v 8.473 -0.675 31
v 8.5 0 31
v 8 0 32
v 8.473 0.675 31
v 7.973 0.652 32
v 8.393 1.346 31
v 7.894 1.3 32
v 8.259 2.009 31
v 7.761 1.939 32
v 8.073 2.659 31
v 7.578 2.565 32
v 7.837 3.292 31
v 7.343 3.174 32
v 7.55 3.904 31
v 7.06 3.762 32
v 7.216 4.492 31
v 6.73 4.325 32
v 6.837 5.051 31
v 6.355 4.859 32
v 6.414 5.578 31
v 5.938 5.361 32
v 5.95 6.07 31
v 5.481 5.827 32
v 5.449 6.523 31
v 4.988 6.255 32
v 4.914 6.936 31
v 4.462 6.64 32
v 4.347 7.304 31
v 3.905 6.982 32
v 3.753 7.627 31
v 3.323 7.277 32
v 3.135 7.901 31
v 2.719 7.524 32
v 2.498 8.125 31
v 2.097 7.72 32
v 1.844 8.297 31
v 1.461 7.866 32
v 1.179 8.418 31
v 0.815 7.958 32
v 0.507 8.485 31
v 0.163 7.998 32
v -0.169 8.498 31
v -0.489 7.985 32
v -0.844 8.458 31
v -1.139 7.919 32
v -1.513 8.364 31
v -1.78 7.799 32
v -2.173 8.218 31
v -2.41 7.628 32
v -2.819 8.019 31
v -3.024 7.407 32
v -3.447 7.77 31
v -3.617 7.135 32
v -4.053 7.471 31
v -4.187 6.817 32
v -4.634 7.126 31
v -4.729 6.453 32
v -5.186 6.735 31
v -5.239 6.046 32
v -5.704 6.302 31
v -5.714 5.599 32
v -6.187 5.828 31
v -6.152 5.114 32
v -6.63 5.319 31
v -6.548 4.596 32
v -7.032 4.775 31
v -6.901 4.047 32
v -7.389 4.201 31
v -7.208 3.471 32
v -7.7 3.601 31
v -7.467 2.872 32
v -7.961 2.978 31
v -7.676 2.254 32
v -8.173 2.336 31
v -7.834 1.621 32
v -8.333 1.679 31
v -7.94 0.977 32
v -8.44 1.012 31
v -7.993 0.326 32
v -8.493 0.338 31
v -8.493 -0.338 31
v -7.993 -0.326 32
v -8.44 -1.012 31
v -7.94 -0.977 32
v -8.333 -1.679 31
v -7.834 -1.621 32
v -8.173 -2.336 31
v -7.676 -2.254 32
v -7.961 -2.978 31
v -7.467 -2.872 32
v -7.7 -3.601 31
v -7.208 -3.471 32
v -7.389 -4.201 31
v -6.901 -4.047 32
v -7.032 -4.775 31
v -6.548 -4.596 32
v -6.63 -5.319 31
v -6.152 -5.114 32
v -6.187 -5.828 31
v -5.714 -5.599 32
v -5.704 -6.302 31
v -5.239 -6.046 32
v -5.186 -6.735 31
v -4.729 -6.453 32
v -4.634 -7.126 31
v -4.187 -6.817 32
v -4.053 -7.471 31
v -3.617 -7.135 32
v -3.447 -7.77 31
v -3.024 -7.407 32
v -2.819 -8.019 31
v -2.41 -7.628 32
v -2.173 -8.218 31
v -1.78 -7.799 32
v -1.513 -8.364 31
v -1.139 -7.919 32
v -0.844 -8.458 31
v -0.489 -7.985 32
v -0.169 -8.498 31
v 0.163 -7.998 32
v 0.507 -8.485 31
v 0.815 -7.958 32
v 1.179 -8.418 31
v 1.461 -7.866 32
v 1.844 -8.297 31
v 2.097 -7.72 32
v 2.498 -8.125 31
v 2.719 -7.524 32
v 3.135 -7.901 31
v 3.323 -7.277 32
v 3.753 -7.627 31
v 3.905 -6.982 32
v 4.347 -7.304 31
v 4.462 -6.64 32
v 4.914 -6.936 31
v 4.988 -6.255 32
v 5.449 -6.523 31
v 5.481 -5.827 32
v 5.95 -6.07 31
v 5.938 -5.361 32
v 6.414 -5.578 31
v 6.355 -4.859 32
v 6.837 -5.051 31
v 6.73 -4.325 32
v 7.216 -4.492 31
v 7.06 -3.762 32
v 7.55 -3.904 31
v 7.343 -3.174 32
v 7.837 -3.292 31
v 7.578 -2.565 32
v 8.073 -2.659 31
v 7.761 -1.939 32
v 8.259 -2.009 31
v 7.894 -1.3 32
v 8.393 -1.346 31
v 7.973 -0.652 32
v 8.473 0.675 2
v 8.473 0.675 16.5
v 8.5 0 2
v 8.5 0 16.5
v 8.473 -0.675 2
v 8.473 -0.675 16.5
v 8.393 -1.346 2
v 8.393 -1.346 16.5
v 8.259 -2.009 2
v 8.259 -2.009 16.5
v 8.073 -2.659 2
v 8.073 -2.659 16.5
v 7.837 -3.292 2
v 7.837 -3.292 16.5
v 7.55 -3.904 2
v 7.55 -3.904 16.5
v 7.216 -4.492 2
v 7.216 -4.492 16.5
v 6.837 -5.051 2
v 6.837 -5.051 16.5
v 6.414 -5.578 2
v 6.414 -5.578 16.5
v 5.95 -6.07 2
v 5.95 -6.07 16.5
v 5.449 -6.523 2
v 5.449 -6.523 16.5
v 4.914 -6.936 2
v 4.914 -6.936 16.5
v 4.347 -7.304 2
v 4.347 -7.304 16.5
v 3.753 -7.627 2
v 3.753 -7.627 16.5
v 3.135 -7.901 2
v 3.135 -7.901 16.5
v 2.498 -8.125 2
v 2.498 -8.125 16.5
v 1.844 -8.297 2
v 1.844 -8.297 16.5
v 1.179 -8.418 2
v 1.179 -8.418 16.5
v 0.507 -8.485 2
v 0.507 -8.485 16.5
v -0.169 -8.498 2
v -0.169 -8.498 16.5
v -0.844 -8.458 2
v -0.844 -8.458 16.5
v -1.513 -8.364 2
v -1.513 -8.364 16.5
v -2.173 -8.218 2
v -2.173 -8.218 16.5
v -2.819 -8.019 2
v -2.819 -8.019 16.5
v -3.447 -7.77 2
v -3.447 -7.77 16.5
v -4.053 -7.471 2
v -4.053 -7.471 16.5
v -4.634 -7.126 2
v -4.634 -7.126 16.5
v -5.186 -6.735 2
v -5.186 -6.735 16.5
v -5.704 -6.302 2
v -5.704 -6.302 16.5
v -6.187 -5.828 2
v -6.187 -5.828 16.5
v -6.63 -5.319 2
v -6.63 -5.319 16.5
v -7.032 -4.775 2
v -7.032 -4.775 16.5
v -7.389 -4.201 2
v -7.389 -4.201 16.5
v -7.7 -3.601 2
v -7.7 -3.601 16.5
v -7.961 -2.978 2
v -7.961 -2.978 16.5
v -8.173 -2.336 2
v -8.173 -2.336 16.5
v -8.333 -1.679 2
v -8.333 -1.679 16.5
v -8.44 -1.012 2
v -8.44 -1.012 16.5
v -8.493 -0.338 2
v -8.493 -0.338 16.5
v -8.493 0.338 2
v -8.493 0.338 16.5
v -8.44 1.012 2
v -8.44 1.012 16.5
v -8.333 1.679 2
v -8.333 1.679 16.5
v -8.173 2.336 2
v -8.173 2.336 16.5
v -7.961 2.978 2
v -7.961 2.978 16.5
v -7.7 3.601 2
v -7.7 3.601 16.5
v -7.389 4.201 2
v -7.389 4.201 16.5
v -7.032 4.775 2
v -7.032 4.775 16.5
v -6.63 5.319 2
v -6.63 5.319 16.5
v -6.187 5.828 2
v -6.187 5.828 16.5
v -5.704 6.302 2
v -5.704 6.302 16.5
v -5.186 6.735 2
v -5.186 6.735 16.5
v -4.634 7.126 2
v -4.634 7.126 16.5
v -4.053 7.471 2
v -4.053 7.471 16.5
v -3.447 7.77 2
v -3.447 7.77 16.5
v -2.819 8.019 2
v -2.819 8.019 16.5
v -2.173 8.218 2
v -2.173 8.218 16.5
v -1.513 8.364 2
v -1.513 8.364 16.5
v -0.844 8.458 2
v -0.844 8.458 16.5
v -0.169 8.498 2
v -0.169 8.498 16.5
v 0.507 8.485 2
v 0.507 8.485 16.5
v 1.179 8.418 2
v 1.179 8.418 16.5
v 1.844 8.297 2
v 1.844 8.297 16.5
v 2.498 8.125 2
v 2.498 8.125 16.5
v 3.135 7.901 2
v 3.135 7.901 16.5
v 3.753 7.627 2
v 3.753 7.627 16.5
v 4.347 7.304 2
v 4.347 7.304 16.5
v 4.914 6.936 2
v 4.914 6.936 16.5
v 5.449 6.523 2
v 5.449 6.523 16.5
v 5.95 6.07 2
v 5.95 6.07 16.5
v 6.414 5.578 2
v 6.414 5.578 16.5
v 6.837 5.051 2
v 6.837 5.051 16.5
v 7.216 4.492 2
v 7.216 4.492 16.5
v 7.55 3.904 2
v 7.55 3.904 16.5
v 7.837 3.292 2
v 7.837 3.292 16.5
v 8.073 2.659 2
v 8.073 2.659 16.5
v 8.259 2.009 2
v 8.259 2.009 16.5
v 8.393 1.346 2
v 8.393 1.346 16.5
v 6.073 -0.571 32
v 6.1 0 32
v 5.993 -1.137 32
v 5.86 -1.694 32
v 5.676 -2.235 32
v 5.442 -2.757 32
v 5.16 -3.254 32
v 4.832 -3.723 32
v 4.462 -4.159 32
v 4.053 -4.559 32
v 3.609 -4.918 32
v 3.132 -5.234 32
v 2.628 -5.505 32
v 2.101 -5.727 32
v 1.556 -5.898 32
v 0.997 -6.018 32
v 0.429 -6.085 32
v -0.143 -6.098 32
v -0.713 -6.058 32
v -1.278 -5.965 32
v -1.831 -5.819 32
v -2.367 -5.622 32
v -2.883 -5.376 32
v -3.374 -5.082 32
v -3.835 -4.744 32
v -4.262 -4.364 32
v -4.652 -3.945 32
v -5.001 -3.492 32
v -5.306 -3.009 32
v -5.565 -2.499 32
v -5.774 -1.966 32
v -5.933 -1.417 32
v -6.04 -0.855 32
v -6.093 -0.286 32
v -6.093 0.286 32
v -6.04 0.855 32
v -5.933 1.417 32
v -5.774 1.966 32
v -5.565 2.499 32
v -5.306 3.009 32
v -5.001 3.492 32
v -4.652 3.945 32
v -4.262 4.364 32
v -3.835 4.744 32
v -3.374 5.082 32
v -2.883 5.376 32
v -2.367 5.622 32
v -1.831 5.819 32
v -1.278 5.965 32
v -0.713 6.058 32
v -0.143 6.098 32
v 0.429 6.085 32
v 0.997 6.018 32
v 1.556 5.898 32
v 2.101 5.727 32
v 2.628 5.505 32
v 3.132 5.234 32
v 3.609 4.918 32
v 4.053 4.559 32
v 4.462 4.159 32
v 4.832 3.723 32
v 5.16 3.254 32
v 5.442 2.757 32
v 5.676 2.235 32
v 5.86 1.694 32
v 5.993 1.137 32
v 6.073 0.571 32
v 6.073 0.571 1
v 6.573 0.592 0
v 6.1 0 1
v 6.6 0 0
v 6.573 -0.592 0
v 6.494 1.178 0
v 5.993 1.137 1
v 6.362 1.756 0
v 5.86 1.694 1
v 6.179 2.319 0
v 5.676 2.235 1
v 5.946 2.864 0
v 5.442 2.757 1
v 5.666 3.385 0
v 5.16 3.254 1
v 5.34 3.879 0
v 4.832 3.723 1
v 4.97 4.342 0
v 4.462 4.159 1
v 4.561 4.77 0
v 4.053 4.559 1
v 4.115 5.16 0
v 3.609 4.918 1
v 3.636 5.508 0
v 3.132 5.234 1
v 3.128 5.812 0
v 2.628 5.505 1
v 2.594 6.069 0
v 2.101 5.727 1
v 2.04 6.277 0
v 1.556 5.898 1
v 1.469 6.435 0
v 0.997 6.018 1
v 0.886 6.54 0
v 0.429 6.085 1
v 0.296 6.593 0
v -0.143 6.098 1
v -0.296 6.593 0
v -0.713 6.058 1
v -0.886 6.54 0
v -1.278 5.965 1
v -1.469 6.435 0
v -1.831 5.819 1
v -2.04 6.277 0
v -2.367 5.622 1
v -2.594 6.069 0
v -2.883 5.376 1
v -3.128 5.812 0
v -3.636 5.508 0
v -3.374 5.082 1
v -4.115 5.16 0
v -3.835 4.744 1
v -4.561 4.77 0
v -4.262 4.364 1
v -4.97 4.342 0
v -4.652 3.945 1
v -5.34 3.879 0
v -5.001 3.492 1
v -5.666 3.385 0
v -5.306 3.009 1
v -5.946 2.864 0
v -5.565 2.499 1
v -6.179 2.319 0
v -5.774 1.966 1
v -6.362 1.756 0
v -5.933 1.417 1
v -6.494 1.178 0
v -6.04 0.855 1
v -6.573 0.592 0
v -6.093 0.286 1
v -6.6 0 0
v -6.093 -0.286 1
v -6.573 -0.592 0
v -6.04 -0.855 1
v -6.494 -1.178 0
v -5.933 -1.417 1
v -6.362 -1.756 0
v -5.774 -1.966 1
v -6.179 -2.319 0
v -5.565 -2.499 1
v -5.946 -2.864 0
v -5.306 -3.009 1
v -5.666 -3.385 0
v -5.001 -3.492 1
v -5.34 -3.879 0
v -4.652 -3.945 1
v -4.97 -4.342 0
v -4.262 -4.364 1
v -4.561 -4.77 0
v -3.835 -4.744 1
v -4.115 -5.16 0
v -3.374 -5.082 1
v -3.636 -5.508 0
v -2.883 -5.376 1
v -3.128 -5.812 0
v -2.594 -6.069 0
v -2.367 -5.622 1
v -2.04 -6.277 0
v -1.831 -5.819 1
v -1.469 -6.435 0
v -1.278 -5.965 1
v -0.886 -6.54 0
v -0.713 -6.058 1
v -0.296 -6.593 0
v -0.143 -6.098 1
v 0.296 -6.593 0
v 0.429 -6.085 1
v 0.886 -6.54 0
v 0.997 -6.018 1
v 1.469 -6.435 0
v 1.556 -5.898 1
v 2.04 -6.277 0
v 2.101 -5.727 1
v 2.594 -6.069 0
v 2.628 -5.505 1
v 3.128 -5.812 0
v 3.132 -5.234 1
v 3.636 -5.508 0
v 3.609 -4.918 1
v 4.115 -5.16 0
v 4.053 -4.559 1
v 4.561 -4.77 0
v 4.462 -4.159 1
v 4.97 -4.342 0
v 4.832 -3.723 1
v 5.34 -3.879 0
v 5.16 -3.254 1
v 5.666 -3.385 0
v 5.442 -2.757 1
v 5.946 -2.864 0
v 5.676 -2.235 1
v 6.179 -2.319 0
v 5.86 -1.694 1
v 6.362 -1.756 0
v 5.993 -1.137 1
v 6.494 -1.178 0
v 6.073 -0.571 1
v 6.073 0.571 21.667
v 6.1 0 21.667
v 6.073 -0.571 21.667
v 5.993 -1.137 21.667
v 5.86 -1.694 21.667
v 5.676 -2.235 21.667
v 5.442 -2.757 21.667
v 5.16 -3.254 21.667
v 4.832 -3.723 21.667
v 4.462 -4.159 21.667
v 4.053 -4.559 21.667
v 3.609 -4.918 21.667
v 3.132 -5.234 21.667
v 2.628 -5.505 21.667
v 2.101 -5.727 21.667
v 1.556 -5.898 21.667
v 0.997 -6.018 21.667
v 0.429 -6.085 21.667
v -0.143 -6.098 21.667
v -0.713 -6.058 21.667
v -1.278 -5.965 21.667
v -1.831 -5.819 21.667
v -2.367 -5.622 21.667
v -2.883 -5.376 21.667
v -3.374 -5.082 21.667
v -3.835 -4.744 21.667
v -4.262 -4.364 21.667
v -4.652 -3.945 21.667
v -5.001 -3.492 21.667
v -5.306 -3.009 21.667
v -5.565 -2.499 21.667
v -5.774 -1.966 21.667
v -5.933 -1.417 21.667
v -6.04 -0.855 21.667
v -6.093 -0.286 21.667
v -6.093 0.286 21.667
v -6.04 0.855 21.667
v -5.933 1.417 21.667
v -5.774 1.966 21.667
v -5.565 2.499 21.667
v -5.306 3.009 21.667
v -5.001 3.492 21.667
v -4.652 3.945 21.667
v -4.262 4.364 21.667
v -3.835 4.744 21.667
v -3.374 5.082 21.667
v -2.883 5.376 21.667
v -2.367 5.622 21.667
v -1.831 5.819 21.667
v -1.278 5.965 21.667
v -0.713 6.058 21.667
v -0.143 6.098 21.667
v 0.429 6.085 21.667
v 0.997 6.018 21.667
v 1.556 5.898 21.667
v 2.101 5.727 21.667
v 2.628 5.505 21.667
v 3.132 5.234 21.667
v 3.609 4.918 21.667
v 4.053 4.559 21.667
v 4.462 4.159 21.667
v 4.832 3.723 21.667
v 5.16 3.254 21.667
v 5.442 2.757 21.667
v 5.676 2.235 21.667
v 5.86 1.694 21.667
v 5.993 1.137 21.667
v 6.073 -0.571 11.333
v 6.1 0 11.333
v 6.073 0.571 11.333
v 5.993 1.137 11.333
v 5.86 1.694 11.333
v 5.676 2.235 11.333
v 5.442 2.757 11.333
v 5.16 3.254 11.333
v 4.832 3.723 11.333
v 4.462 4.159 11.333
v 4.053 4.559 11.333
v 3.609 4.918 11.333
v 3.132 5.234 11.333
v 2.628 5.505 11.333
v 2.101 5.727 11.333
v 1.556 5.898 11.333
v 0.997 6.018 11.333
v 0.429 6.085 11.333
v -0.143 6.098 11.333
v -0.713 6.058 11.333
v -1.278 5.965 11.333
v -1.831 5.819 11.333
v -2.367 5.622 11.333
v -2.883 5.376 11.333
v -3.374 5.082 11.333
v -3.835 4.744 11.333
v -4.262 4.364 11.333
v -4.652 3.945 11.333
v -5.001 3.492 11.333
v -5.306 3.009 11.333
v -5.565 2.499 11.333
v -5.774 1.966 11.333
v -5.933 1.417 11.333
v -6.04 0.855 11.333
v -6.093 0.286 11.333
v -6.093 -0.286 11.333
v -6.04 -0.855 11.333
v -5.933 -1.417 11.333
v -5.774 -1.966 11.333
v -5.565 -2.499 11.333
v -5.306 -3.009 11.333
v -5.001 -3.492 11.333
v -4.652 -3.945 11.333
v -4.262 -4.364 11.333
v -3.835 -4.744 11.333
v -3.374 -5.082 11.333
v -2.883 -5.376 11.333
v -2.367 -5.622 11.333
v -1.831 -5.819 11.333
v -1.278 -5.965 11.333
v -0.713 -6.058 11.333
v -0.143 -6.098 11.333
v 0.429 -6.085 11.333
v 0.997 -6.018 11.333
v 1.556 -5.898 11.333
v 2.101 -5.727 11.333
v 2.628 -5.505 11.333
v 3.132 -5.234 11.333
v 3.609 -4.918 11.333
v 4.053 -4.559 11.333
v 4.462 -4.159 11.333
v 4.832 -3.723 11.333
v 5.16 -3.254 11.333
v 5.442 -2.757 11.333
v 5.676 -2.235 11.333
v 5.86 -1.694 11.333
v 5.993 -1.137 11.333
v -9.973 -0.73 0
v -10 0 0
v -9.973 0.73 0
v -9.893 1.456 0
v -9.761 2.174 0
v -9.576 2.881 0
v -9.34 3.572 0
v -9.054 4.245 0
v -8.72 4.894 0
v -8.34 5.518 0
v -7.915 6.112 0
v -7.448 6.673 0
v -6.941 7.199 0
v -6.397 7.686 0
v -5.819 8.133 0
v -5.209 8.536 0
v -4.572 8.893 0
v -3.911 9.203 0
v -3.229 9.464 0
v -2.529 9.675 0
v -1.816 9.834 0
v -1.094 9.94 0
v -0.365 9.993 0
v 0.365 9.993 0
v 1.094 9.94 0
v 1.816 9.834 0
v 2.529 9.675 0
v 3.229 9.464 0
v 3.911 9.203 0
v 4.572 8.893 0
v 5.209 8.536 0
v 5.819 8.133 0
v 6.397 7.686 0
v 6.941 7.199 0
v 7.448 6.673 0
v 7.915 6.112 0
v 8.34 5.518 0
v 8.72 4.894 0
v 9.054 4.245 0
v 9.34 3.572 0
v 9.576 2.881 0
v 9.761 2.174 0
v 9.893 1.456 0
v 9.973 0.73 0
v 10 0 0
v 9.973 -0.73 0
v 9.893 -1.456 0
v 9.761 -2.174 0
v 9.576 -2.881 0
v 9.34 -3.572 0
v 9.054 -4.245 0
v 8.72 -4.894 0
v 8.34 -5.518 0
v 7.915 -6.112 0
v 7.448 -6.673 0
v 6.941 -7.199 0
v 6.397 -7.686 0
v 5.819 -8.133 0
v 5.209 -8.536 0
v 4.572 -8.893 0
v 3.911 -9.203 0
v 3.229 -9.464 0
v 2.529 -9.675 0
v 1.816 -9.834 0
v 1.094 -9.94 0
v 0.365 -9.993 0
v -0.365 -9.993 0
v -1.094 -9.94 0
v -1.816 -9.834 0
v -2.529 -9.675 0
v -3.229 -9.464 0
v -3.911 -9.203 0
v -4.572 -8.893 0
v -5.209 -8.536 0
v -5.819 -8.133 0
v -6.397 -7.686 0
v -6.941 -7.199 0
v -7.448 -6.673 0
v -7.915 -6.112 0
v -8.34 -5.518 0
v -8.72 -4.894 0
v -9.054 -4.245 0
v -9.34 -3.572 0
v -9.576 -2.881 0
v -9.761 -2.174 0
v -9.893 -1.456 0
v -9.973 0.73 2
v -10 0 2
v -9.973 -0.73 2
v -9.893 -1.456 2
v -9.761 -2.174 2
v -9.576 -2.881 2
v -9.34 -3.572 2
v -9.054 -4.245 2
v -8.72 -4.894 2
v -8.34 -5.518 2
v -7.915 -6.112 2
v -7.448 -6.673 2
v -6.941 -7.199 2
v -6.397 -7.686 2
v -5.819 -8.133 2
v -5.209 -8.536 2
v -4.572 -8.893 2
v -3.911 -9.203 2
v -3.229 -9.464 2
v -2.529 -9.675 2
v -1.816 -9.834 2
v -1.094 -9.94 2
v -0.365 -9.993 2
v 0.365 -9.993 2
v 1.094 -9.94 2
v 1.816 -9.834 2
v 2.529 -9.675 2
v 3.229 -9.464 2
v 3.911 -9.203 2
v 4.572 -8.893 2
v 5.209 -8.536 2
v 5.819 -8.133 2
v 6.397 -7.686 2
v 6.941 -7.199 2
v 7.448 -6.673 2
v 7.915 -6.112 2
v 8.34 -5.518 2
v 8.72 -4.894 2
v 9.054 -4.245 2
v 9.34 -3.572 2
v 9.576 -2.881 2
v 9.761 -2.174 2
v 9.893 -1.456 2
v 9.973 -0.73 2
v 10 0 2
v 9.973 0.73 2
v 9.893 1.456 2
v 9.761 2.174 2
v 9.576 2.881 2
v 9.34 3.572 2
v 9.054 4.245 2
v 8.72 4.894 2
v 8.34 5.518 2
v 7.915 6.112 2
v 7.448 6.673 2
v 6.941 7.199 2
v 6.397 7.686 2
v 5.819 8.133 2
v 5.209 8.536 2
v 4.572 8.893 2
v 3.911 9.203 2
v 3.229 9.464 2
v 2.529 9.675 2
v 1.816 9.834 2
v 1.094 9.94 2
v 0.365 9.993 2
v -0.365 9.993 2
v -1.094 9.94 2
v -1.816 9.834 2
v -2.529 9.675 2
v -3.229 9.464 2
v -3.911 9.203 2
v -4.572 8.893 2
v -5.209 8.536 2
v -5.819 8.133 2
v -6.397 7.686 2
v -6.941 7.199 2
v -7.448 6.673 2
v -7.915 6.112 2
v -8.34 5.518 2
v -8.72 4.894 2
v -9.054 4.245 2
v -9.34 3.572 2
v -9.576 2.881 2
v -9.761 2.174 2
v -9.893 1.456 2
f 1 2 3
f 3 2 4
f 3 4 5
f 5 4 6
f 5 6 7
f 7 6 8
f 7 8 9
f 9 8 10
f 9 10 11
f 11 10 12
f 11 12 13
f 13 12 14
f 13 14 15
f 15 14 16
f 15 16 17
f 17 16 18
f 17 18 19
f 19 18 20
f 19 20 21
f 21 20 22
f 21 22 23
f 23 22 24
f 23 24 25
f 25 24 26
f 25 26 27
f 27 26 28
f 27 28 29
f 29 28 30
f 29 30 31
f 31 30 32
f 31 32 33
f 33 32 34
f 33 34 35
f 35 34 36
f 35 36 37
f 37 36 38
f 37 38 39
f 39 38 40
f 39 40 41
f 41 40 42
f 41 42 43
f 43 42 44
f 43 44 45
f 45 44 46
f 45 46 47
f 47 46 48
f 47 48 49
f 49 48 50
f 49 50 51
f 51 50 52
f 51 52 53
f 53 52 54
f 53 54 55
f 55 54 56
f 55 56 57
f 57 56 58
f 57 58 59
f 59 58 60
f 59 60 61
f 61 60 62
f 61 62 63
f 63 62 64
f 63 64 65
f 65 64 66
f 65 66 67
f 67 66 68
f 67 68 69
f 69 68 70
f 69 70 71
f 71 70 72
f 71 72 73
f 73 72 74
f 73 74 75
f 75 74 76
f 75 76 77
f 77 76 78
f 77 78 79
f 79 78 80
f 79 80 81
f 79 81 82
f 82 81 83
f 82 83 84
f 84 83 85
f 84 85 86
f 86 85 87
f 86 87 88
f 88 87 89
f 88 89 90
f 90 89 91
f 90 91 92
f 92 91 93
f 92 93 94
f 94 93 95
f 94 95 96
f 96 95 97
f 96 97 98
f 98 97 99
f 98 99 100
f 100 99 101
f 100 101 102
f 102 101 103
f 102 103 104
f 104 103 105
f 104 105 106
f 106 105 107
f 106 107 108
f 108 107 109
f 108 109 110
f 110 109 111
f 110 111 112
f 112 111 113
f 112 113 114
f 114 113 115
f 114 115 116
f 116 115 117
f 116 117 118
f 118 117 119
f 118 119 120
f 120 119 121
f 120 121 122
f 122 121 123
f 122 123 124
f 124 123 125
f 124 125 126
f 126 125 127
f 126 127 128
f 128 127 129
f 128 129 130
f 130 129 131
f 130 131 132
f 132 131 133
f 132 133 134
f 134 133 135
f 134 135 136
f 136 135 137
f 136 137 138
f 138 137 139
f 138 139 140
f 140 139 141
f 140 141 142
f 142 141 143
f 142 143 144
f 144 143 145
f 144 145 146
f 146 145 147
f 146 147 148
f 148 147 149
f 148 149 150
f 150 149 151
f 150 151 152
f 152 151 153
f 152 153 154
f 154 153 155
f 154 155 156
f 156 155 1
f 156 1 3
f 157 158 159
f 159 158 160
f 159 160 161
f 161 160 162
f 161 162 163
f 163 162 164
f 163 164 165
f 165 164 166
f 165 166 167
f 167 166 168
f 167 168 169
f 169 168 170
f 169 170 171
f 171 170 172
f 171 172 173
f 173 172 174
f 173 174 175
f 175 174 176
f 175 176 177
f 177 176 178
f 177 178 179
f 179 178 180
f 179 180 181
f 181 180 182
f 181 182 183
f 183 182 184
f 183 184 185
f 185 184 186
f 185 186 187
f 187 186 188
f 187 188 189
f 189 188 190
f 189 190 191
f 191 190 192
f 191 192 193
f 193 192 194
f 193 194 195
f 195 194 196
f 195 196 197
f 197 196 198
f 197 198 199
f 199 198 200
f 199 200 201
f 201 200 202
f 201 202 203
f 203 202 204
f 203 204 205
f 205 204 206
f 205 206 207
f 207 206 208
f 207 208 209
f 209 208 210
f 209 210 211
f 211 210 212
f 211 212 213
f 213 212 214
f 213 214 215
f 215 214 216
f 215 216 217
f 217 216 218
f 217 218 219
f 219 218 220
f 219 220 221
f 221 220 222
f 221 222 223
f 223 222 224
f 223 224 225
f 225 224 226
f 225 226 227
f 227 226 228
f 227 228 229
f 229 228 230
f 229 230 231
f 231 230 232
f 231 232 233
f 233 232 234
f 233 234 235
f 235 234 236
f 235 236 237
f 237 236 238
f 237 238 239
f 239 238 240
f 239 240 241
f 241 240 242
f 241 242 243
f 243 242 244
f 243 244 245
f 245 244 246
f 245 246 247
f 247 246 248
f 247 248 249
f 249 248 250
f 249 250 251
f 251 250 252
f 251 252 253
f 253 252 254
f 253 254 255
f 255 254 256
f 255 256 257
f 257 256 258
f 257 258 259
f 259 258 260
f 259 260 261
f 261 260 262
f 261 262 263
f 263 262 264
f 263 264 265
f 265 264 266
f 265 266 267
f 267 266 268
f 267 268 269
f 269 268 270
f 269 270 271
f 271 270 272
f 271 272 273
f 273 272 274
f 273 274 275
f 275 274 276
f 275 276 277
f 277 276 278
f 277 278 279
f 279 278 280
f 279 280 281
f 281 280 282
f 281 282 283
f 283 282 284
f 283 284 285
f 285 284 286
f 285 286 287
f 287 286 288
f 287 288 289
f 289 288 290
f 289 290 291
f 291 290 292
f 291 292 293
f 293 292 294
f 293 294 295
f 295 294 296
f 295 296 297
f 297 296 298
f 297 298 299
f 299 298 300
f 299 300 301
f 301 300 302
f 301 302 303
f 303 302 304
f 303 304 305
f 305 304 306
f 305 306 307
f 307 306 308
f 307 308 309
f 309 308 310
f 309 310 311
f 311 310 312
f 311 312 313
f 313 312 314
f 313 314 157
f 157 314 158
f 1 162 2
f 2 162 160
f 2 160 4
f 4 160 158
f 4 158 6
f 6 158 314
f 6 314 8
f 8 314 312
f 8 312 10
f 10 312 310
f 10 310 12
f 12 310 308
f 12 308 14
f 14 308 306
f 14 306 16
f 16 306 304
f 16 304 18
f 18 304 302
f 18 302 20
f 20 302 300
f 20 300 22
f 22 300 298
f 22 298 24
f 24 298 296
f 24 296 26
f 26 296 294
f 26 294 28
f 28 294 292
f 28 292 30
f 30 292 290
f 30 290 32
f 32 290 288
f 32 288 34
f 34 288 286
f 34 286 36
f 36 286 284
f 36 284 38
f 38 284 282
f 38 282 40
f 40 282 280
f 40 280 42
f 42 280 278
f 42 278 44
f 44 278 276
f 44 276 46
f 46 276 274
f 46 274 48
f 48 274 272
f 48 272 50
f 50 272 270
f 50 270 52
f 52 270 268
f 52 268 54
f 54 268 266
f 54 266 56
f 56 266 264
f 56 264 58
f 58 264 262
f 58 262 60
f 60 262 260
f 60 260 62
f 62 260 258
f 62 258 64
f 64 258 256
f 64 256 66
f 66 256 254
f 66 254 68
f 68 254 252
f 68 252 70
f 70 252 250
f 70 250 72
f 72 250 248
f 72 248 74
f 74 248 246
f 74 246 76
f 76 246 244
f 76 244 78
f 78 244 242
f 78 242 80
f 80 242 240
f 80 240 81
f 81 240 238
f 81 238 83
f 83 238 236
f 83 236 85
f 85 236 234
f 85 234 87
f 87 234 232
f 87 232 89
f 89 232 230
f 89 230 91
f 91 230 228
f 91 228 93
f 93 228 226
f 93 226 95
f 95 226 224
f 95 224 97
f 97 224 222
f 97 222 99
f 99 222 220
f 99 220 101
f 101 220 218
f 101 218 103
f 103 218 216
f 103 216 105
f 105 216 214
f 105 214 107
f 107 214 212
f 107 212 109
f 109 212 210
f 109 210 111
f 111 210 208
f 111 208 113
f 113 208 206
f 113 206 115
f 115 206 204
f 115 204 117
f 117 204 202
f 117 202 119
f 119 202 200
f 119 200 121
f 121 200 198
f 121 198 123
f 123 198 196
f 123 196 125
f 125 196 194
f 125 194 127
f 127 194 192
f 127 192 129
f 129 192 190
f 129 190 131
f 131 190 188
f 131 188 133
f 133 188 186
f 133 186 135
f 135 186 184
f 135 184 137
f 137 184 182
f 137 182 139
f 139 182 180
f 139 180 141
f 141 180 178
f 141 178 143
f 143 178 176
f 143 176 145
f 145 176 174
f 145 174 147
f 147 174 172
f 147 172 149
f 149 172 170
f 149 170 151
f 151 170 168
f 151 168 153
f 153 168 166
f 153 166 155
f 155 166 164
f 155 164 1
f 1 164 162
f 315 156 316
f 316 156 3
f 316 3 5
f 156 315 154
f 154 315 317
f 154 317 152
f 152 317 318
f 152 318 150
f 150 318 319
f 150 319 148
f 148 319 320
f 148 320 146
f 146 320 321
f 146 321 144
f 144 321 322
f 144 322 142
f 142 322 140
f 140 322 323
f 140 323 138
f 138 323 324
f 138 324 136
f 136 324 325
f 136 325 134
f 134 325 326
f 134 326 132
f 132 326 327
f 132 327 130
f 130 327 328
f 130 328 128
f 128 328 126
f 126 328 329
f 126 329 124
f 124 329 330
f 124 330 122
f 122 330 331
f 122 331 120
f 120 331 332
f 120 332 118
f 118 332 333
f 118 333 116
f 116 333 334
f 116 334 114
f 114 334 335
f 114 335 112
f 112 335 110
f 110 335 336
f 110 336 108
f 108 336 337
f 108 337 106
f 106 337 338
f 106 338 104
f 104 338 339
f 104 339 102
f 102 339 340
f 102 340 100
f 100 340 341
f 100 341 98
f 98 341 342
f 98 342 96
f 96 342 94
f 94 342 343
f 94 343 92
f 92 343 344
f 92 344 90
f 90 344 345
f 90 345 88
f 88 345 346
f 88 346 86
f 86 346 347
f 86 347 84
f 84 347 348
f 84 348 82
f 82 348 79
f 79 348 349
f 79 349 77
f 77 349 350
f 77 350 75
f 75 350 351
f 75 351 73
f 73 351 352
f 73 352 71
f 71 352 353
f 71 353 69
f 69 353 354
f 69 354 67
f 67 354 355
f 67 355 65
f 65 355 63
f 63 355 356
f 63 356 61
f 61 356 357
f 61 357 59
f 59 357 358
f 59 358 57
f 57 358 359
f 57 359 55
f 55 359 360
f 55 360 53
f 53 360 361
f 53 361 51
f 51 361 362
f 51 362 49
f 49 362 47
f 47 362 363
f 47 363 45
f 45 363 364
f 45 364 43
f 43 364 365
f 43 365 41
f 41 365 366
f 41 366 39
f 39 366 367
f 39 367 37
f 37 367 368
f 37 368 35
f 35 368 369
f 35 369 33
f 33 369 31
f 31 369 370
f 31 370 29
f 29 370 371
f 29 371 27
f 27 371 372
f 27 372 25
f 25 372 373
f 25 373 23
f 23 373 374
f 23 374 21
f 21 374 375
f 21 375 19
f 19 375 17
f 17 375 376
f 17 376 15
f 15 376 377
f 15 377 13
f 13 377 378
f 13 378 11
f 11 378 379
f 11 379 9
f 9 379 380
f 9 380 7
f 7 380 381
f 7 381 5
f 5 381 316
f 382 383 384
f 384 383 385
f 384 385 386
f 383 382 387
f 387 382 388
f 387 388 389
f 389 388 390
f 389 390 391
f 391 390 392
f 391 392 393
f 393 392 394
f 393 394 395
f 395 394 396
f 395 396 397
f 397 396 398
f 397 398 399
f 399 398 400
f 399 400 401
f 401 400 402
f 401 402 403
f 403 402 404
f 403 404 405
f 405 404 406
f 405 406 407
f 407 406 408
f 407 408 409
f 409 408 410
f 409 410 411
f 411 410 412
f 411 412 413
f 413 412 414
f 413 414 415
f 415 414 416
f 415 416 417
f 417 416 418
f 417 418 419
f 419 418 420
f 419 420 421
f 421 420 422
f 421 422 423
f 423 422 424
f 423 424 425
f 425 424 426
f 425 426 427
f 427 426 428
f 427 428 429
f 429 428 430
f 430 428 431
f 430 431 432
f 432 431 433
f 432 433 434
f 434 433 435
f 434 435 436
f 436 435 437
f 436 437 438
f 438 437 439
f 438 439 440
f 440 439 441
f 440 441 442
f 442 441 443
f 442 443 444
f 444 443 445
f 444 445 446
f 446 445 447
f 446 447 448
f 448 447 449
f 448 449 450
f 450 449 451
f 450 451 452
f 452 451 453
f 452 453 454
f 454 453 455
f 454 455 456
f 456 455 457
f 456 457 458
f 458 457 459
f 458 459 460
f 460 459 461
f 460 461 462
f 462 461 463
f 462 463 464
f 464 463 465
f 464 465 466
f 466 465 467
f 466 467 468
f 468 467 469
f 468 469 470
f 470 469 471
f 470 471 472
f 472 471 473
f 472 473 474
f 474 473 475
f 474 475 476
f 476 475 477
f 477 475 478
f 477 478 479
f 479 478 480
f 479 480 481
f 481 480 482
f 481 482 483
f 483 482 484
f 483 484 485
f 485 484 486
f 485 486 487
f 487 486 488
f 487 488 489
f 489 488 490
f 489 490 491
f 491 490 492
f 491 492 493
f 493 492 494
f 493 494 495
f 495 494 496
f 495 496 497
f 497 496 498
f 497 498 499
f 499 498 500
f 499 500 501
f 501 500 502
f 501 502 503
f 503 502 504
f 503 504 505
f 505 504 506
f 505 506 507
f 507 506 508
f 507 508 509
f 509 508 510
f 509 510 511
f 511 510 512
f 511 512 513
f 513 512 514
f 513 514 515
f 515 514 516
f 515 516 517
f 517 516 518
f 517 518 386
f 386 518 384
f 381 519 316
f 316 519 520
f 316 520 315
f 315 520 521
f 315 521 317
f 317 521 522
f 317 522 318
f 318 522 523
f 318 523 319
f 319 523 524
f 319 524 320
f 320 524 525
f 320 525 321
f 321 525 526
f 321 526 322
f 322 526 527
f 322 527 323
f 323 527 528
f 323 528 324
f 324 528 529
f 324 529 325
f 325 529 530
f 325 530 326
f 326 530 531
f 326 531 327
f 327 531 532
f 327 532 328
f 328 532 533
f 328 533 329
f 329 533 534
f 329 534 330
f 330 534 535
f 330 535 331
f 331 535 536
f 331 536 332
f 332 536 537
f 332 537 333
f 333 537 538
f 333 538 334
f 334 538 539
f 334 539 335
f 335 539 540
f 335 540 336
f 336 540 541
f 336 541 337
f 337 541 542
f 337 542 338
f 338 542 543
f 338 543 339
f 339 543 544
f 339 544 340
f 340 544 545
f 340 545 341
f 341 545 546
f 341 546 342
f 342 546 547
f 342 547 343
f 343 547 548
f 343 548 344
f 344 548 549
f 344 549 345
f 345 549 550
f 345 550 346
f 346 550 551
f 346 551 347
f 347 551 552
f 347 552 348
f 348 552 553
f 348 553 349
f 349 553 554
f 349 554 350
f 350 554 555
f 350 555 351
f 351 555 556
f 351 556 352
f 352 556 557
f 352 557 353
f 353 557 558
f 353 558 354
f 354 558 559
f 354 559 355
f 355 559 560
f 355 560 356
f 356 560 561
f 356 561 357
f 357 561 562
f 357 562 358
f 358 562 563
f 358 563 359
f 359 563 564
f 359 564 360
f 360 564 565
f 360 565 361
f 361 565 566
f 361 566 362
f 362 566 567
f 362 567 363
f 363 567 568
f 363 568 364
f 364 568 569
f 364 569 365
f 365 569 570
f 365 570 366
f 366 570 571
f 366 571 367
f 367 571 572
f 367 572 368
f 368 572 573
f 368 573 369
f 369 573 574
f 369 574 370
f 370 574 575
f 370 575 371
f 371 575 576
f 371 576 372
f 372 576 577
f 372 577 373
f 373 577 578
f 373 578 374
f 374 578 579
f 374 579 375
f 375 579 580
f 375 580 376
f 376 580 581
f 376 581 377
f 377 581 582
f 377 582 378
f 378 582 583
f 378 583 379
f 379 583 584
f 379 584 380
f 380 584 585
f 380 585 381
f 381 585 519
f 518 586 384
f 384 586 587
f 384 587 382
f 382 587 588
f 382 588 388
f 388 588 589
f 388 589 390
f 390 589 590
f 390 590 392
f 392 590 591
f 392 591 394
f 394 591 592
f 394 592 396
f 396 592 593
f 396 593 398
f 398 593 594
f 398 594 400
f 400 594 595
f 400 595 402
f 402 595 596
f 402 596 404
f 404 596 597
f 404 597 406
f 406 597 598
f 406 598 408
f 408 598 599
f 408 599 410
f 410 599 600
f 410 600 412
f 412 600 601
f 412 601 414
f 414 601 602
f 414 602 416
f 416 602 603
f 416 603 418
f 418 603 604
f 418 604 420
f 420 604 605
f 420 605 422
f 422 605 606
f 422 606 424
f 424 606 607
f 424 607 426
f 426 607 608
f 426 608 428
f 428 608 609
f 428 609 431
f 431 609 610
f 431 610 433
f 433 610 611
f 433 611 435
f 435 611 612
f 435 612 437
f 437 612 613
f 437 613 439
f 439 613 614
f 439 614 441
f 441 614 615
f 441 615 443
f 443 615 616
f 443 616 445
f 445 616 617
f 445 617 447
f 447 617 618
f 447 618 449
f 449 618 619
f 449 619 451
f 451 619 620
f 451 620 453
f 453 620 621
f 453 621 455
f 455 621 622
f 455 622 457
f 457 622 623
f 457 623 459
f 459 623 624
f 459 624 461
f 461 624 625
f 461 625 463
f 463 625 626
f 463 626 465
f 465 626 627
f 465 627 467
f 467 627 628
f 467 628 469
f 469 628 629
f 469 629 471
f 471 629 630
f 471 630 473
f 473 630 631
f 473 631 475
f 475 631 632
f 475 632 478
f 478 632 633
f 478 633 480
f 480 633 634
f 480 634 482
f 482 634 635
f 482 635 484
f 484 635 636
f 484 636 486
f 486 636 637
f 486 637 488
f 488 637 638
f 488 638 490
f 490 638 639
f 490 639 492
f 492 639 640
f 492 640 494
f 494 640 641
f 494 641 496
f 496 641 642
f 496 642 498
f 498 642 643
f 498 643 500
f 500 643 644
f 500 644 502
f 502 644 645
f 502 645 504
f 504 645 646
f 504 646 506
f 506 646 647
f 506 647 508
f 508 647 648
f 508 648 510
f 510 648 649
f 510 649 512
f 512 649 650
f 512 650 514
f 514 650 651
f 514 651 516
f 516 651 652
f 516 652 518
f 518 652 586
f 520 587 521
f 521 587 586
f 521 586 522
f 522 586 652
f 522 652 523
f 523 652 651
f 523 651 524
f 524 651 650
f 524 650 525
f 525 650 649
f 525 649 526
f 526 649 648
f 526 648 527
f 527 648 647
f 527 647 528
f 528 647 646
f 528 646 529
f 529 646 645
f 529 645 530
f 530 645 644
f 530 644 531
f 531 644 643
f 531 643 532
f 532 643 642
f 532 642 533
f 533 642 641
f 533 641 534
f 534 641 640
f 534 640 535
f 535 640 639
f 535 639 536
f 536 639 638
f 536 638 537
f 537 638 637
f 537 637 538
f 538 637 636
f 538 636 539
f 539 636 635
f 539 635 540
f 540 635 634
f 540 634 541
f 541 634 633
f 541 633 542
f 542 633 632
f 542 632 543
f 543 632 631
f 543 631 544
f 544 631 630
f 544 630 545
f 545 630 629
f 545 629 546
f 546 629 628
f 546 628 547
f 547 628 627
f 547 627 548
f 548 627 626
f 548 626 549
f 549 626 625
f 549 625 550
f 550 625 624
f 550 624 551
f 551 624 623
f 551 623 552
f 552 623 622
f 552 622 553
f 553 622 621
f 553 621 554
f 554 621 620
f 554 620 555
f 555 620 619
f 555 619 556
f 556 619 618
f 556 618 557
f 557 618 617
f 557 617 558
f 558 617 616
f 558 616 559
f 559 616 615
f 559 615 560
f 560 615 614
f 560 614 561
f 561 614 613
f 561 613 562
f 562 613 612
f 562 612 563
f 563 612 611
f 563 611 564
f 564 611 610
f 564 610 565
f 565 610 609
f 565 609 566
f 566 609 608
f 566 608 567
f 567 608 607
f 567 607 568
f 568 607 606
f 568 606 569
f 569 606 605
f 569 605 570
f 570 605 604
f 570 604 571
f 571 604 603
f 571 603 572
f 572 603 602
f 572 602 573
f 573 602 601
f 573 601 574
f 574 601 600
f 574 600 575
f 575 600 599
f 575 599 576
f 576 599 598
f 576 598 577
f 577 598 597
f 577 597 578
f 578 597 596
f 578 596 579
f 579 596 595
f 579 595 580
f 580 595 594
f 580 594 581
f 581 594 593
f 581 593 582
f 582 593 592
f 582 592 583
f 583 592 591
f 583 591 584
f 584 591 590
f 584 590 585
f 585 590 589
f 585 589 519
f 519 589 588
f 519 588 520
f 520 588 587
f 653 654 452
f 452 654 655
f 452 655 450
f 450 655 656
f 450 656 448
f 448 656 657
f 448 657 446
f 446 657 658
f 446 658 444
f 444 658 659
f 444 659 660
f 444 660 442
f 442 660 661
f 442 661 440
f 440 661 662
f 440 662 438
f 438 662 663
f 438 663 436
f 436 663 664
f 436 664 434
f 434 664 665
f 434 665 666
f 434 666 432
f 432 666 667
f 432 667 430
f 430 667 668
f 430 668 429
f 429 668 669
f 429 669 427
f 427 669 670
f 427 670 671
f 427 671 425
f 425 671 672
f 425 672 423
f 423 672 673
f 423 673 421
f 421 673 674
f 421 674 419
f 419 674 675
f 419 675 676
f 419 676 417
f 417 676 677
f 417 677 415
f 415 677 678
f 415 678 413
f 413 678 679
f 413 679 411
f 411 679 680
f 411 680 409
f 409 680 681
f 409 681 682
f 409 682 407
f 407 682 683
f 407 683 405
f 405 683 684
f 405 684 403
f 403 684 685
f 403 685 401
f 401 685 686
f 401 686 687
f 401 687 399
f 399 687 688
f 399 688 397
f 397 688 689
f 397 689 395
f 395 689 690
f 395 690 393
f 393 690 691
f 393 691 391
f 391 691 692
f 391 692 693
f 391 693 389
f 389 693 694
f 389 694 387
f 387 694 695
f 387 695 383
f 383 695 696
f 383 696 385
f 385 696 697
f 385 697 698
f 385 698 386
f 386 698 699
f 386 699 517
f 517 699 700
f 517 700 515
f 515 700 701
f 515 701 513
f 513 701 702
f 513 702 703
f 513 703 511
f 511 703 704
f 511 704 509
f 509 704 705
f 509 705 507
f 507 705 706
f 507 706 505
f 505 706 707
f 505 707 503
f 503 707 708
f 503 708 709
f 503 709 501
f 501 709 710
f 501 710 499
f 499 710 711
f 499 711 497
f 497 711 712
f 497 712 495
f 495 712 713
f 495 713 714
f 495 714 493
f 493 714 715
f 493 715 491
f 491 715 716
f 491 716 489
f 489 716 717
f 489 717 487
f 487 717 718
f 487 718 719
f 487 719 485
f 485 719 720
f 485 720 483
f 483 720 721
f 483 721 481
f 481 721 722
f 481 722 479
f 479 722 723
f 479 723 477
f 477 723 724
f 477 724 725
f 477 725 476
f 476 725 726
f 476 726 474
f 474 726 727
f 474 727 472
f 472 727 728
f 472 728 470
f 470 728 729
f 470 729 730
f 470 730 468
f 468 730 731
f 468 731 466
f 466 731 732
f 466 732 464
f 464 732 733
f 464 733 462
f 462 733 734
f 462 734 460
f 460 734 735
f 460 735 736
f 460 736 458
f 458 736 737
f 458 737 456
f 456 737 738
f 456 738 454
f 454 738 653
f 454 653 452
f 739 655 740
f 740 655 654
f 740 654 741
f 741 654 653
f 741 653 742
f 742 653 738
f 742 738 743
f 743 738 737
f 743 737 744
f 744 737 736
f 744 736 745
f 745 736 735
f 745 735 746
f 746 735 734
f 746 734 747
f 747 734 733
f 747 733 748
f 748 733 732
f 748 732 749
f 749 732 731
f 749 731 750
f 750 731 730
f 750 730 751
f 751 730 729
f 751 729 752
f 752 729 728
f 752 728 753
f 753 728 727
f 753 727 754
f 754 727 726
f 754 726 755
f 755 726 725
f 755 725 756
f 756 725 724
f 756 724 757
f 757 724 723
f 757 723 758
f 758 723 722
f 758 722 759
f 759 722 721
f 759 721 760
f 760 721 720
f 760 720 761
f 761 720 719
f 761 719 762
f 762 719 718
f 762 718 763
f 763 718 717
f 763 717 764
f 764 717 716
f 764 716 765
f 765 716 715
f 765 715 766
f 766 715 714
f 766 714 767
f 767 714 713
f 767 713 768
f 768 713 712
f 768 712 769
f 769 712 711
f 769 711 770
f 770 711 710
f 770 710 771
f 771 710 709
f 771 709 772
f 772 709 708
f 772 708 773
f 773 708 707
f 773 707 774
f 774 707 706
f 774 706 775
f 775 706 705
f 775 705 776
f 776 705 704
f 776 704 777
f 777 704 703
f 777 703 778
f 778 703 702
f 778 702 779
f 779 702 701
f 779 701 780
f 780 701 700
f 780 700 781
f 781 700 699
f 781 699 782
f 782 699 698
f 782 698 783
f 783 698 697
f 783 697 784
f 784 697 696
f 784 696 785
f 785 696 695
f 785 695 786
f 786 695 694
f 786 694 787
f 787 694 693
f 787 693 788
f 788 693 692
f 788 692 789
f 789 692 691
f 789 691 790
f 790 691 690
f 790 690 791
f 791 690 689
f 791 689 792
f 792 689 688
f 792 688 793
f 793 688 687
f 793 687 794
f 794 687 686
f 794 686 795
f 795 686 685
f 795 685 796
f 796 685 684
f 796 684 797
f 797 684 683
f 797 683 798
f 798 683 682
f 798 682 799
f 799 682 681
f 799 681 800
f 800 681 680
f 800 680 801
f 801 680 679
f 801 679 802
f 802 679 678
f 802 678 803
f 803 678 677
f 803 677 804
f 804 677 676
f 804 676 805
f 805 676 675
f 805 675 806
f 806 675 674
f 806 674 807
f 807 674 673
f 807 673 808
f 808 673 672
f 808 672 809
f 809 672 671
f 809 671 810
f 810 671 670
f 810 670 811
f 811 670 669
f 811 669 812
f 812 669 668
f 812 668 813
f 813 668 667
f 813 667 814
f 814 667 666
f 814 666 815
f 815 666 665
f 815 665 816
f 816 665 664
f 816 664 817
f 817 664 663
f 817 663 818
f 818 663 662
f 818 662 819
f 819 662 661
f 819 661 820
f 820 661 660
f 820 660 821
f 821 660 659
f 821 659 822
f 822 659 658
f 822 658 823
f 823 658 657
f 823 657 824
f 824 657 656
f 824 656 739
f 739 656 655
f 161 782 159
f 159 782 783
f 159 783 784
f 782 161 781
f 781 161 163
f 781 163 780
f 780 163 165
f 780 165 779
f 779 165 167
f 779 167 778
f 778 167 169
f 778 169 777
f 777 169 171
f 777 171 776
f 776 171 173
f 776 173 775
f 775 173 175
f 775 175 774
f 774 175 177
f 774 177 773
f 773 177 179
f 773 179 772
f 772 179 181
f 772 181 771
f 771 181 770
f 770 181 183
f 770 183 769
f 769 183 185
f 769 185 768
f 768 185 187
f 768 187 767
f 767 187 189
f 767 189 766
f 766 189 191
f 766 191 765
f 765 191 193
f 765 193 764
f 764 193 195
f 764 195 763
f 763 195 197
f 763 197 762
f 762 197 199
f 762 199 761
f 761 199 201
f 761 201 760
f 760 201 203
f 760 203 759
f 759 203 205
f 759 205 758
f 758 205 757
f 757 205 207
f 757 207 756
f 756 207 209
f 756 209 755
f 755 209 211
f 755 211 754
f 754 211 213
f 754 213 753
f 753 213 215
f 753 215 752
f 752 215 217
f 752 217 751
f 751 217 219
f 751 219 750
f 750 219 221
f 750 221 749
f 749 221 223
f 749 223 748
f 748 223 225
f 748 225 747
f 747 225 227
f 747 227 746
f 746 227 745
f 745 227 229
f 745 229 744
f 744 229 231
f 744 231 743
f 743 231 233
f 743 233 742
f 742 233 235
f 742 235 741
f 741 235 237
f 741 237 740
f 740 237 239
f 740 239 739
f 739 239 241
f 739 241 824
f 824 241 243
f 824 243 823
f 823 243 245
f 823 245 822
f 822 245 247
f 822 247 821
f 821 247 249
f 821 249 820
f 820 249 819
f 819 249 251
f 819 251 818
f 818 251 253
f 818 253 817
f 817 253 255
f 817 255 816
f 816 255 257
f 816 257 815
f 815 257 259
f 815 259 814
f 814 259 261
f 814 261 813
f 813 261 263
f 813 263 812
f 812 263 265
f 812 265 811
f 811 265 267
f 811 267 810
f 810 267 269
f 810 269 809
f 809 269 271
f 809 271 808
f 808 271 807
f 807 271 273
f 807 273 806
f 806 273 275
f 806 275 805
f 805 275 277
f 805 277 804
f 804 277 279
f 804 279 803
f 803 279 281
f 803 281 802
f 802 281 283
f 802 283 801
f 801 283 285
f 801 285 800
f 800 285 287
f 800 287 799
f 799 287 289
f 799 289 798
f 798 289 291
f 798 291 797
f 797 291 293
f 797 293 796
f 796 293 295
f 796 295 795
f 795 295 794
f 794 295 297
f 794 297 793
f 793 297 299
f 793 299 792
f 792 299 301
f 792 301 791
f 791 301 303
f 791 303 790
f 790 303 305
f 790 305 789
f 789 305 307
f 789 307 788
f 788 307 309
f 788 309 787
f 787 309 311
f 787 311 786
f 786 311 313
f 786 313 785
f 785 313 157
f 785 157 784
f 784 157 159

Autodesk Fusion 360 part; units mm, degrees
sketch "Sketch1" plane through (0, 0, 0) normal (0, 0, 1) x (1, 0, 0)
  circle A0 centre (0, 0) radius 10
  dimension "d1" = 20
extrude "Extrude1" add sketch "Sketch1" along normal blind 2
sketch "Sketch2" plane through (0, 0, 2) normal (0, 0, 1) x (-1, 0, 0)
  circle A0 centre (0, 0) radius 10
  circle A1 centre (0, 0) radius 8.5
  dimension "d4" = 17
extrude "Extrude2" add sketch "Sketch2" along normal blind 30 contours A1
sketch "Sketch3" plane through (0, 0, 32) normal (0, 0, 1) x (-1, 0, 0)
  circle A0 centre (0, 0) radius 8.5
  circle A1 centre (0, 0) radius 6.1
  dimension "d7" = 12.2
extrude "Extrude3" cut sketch "Sketch3" against normal blind 60 contours A1
chamfer "Chamfer1" distance 0.5 distance2 1 2 edges at (5.6872, 2.2059, 0) (7.9248, 3.0737, 32) measured on face at (8.6401, -0.7999, 0) measured on face at (-7.6684, 0.4223, 32)
